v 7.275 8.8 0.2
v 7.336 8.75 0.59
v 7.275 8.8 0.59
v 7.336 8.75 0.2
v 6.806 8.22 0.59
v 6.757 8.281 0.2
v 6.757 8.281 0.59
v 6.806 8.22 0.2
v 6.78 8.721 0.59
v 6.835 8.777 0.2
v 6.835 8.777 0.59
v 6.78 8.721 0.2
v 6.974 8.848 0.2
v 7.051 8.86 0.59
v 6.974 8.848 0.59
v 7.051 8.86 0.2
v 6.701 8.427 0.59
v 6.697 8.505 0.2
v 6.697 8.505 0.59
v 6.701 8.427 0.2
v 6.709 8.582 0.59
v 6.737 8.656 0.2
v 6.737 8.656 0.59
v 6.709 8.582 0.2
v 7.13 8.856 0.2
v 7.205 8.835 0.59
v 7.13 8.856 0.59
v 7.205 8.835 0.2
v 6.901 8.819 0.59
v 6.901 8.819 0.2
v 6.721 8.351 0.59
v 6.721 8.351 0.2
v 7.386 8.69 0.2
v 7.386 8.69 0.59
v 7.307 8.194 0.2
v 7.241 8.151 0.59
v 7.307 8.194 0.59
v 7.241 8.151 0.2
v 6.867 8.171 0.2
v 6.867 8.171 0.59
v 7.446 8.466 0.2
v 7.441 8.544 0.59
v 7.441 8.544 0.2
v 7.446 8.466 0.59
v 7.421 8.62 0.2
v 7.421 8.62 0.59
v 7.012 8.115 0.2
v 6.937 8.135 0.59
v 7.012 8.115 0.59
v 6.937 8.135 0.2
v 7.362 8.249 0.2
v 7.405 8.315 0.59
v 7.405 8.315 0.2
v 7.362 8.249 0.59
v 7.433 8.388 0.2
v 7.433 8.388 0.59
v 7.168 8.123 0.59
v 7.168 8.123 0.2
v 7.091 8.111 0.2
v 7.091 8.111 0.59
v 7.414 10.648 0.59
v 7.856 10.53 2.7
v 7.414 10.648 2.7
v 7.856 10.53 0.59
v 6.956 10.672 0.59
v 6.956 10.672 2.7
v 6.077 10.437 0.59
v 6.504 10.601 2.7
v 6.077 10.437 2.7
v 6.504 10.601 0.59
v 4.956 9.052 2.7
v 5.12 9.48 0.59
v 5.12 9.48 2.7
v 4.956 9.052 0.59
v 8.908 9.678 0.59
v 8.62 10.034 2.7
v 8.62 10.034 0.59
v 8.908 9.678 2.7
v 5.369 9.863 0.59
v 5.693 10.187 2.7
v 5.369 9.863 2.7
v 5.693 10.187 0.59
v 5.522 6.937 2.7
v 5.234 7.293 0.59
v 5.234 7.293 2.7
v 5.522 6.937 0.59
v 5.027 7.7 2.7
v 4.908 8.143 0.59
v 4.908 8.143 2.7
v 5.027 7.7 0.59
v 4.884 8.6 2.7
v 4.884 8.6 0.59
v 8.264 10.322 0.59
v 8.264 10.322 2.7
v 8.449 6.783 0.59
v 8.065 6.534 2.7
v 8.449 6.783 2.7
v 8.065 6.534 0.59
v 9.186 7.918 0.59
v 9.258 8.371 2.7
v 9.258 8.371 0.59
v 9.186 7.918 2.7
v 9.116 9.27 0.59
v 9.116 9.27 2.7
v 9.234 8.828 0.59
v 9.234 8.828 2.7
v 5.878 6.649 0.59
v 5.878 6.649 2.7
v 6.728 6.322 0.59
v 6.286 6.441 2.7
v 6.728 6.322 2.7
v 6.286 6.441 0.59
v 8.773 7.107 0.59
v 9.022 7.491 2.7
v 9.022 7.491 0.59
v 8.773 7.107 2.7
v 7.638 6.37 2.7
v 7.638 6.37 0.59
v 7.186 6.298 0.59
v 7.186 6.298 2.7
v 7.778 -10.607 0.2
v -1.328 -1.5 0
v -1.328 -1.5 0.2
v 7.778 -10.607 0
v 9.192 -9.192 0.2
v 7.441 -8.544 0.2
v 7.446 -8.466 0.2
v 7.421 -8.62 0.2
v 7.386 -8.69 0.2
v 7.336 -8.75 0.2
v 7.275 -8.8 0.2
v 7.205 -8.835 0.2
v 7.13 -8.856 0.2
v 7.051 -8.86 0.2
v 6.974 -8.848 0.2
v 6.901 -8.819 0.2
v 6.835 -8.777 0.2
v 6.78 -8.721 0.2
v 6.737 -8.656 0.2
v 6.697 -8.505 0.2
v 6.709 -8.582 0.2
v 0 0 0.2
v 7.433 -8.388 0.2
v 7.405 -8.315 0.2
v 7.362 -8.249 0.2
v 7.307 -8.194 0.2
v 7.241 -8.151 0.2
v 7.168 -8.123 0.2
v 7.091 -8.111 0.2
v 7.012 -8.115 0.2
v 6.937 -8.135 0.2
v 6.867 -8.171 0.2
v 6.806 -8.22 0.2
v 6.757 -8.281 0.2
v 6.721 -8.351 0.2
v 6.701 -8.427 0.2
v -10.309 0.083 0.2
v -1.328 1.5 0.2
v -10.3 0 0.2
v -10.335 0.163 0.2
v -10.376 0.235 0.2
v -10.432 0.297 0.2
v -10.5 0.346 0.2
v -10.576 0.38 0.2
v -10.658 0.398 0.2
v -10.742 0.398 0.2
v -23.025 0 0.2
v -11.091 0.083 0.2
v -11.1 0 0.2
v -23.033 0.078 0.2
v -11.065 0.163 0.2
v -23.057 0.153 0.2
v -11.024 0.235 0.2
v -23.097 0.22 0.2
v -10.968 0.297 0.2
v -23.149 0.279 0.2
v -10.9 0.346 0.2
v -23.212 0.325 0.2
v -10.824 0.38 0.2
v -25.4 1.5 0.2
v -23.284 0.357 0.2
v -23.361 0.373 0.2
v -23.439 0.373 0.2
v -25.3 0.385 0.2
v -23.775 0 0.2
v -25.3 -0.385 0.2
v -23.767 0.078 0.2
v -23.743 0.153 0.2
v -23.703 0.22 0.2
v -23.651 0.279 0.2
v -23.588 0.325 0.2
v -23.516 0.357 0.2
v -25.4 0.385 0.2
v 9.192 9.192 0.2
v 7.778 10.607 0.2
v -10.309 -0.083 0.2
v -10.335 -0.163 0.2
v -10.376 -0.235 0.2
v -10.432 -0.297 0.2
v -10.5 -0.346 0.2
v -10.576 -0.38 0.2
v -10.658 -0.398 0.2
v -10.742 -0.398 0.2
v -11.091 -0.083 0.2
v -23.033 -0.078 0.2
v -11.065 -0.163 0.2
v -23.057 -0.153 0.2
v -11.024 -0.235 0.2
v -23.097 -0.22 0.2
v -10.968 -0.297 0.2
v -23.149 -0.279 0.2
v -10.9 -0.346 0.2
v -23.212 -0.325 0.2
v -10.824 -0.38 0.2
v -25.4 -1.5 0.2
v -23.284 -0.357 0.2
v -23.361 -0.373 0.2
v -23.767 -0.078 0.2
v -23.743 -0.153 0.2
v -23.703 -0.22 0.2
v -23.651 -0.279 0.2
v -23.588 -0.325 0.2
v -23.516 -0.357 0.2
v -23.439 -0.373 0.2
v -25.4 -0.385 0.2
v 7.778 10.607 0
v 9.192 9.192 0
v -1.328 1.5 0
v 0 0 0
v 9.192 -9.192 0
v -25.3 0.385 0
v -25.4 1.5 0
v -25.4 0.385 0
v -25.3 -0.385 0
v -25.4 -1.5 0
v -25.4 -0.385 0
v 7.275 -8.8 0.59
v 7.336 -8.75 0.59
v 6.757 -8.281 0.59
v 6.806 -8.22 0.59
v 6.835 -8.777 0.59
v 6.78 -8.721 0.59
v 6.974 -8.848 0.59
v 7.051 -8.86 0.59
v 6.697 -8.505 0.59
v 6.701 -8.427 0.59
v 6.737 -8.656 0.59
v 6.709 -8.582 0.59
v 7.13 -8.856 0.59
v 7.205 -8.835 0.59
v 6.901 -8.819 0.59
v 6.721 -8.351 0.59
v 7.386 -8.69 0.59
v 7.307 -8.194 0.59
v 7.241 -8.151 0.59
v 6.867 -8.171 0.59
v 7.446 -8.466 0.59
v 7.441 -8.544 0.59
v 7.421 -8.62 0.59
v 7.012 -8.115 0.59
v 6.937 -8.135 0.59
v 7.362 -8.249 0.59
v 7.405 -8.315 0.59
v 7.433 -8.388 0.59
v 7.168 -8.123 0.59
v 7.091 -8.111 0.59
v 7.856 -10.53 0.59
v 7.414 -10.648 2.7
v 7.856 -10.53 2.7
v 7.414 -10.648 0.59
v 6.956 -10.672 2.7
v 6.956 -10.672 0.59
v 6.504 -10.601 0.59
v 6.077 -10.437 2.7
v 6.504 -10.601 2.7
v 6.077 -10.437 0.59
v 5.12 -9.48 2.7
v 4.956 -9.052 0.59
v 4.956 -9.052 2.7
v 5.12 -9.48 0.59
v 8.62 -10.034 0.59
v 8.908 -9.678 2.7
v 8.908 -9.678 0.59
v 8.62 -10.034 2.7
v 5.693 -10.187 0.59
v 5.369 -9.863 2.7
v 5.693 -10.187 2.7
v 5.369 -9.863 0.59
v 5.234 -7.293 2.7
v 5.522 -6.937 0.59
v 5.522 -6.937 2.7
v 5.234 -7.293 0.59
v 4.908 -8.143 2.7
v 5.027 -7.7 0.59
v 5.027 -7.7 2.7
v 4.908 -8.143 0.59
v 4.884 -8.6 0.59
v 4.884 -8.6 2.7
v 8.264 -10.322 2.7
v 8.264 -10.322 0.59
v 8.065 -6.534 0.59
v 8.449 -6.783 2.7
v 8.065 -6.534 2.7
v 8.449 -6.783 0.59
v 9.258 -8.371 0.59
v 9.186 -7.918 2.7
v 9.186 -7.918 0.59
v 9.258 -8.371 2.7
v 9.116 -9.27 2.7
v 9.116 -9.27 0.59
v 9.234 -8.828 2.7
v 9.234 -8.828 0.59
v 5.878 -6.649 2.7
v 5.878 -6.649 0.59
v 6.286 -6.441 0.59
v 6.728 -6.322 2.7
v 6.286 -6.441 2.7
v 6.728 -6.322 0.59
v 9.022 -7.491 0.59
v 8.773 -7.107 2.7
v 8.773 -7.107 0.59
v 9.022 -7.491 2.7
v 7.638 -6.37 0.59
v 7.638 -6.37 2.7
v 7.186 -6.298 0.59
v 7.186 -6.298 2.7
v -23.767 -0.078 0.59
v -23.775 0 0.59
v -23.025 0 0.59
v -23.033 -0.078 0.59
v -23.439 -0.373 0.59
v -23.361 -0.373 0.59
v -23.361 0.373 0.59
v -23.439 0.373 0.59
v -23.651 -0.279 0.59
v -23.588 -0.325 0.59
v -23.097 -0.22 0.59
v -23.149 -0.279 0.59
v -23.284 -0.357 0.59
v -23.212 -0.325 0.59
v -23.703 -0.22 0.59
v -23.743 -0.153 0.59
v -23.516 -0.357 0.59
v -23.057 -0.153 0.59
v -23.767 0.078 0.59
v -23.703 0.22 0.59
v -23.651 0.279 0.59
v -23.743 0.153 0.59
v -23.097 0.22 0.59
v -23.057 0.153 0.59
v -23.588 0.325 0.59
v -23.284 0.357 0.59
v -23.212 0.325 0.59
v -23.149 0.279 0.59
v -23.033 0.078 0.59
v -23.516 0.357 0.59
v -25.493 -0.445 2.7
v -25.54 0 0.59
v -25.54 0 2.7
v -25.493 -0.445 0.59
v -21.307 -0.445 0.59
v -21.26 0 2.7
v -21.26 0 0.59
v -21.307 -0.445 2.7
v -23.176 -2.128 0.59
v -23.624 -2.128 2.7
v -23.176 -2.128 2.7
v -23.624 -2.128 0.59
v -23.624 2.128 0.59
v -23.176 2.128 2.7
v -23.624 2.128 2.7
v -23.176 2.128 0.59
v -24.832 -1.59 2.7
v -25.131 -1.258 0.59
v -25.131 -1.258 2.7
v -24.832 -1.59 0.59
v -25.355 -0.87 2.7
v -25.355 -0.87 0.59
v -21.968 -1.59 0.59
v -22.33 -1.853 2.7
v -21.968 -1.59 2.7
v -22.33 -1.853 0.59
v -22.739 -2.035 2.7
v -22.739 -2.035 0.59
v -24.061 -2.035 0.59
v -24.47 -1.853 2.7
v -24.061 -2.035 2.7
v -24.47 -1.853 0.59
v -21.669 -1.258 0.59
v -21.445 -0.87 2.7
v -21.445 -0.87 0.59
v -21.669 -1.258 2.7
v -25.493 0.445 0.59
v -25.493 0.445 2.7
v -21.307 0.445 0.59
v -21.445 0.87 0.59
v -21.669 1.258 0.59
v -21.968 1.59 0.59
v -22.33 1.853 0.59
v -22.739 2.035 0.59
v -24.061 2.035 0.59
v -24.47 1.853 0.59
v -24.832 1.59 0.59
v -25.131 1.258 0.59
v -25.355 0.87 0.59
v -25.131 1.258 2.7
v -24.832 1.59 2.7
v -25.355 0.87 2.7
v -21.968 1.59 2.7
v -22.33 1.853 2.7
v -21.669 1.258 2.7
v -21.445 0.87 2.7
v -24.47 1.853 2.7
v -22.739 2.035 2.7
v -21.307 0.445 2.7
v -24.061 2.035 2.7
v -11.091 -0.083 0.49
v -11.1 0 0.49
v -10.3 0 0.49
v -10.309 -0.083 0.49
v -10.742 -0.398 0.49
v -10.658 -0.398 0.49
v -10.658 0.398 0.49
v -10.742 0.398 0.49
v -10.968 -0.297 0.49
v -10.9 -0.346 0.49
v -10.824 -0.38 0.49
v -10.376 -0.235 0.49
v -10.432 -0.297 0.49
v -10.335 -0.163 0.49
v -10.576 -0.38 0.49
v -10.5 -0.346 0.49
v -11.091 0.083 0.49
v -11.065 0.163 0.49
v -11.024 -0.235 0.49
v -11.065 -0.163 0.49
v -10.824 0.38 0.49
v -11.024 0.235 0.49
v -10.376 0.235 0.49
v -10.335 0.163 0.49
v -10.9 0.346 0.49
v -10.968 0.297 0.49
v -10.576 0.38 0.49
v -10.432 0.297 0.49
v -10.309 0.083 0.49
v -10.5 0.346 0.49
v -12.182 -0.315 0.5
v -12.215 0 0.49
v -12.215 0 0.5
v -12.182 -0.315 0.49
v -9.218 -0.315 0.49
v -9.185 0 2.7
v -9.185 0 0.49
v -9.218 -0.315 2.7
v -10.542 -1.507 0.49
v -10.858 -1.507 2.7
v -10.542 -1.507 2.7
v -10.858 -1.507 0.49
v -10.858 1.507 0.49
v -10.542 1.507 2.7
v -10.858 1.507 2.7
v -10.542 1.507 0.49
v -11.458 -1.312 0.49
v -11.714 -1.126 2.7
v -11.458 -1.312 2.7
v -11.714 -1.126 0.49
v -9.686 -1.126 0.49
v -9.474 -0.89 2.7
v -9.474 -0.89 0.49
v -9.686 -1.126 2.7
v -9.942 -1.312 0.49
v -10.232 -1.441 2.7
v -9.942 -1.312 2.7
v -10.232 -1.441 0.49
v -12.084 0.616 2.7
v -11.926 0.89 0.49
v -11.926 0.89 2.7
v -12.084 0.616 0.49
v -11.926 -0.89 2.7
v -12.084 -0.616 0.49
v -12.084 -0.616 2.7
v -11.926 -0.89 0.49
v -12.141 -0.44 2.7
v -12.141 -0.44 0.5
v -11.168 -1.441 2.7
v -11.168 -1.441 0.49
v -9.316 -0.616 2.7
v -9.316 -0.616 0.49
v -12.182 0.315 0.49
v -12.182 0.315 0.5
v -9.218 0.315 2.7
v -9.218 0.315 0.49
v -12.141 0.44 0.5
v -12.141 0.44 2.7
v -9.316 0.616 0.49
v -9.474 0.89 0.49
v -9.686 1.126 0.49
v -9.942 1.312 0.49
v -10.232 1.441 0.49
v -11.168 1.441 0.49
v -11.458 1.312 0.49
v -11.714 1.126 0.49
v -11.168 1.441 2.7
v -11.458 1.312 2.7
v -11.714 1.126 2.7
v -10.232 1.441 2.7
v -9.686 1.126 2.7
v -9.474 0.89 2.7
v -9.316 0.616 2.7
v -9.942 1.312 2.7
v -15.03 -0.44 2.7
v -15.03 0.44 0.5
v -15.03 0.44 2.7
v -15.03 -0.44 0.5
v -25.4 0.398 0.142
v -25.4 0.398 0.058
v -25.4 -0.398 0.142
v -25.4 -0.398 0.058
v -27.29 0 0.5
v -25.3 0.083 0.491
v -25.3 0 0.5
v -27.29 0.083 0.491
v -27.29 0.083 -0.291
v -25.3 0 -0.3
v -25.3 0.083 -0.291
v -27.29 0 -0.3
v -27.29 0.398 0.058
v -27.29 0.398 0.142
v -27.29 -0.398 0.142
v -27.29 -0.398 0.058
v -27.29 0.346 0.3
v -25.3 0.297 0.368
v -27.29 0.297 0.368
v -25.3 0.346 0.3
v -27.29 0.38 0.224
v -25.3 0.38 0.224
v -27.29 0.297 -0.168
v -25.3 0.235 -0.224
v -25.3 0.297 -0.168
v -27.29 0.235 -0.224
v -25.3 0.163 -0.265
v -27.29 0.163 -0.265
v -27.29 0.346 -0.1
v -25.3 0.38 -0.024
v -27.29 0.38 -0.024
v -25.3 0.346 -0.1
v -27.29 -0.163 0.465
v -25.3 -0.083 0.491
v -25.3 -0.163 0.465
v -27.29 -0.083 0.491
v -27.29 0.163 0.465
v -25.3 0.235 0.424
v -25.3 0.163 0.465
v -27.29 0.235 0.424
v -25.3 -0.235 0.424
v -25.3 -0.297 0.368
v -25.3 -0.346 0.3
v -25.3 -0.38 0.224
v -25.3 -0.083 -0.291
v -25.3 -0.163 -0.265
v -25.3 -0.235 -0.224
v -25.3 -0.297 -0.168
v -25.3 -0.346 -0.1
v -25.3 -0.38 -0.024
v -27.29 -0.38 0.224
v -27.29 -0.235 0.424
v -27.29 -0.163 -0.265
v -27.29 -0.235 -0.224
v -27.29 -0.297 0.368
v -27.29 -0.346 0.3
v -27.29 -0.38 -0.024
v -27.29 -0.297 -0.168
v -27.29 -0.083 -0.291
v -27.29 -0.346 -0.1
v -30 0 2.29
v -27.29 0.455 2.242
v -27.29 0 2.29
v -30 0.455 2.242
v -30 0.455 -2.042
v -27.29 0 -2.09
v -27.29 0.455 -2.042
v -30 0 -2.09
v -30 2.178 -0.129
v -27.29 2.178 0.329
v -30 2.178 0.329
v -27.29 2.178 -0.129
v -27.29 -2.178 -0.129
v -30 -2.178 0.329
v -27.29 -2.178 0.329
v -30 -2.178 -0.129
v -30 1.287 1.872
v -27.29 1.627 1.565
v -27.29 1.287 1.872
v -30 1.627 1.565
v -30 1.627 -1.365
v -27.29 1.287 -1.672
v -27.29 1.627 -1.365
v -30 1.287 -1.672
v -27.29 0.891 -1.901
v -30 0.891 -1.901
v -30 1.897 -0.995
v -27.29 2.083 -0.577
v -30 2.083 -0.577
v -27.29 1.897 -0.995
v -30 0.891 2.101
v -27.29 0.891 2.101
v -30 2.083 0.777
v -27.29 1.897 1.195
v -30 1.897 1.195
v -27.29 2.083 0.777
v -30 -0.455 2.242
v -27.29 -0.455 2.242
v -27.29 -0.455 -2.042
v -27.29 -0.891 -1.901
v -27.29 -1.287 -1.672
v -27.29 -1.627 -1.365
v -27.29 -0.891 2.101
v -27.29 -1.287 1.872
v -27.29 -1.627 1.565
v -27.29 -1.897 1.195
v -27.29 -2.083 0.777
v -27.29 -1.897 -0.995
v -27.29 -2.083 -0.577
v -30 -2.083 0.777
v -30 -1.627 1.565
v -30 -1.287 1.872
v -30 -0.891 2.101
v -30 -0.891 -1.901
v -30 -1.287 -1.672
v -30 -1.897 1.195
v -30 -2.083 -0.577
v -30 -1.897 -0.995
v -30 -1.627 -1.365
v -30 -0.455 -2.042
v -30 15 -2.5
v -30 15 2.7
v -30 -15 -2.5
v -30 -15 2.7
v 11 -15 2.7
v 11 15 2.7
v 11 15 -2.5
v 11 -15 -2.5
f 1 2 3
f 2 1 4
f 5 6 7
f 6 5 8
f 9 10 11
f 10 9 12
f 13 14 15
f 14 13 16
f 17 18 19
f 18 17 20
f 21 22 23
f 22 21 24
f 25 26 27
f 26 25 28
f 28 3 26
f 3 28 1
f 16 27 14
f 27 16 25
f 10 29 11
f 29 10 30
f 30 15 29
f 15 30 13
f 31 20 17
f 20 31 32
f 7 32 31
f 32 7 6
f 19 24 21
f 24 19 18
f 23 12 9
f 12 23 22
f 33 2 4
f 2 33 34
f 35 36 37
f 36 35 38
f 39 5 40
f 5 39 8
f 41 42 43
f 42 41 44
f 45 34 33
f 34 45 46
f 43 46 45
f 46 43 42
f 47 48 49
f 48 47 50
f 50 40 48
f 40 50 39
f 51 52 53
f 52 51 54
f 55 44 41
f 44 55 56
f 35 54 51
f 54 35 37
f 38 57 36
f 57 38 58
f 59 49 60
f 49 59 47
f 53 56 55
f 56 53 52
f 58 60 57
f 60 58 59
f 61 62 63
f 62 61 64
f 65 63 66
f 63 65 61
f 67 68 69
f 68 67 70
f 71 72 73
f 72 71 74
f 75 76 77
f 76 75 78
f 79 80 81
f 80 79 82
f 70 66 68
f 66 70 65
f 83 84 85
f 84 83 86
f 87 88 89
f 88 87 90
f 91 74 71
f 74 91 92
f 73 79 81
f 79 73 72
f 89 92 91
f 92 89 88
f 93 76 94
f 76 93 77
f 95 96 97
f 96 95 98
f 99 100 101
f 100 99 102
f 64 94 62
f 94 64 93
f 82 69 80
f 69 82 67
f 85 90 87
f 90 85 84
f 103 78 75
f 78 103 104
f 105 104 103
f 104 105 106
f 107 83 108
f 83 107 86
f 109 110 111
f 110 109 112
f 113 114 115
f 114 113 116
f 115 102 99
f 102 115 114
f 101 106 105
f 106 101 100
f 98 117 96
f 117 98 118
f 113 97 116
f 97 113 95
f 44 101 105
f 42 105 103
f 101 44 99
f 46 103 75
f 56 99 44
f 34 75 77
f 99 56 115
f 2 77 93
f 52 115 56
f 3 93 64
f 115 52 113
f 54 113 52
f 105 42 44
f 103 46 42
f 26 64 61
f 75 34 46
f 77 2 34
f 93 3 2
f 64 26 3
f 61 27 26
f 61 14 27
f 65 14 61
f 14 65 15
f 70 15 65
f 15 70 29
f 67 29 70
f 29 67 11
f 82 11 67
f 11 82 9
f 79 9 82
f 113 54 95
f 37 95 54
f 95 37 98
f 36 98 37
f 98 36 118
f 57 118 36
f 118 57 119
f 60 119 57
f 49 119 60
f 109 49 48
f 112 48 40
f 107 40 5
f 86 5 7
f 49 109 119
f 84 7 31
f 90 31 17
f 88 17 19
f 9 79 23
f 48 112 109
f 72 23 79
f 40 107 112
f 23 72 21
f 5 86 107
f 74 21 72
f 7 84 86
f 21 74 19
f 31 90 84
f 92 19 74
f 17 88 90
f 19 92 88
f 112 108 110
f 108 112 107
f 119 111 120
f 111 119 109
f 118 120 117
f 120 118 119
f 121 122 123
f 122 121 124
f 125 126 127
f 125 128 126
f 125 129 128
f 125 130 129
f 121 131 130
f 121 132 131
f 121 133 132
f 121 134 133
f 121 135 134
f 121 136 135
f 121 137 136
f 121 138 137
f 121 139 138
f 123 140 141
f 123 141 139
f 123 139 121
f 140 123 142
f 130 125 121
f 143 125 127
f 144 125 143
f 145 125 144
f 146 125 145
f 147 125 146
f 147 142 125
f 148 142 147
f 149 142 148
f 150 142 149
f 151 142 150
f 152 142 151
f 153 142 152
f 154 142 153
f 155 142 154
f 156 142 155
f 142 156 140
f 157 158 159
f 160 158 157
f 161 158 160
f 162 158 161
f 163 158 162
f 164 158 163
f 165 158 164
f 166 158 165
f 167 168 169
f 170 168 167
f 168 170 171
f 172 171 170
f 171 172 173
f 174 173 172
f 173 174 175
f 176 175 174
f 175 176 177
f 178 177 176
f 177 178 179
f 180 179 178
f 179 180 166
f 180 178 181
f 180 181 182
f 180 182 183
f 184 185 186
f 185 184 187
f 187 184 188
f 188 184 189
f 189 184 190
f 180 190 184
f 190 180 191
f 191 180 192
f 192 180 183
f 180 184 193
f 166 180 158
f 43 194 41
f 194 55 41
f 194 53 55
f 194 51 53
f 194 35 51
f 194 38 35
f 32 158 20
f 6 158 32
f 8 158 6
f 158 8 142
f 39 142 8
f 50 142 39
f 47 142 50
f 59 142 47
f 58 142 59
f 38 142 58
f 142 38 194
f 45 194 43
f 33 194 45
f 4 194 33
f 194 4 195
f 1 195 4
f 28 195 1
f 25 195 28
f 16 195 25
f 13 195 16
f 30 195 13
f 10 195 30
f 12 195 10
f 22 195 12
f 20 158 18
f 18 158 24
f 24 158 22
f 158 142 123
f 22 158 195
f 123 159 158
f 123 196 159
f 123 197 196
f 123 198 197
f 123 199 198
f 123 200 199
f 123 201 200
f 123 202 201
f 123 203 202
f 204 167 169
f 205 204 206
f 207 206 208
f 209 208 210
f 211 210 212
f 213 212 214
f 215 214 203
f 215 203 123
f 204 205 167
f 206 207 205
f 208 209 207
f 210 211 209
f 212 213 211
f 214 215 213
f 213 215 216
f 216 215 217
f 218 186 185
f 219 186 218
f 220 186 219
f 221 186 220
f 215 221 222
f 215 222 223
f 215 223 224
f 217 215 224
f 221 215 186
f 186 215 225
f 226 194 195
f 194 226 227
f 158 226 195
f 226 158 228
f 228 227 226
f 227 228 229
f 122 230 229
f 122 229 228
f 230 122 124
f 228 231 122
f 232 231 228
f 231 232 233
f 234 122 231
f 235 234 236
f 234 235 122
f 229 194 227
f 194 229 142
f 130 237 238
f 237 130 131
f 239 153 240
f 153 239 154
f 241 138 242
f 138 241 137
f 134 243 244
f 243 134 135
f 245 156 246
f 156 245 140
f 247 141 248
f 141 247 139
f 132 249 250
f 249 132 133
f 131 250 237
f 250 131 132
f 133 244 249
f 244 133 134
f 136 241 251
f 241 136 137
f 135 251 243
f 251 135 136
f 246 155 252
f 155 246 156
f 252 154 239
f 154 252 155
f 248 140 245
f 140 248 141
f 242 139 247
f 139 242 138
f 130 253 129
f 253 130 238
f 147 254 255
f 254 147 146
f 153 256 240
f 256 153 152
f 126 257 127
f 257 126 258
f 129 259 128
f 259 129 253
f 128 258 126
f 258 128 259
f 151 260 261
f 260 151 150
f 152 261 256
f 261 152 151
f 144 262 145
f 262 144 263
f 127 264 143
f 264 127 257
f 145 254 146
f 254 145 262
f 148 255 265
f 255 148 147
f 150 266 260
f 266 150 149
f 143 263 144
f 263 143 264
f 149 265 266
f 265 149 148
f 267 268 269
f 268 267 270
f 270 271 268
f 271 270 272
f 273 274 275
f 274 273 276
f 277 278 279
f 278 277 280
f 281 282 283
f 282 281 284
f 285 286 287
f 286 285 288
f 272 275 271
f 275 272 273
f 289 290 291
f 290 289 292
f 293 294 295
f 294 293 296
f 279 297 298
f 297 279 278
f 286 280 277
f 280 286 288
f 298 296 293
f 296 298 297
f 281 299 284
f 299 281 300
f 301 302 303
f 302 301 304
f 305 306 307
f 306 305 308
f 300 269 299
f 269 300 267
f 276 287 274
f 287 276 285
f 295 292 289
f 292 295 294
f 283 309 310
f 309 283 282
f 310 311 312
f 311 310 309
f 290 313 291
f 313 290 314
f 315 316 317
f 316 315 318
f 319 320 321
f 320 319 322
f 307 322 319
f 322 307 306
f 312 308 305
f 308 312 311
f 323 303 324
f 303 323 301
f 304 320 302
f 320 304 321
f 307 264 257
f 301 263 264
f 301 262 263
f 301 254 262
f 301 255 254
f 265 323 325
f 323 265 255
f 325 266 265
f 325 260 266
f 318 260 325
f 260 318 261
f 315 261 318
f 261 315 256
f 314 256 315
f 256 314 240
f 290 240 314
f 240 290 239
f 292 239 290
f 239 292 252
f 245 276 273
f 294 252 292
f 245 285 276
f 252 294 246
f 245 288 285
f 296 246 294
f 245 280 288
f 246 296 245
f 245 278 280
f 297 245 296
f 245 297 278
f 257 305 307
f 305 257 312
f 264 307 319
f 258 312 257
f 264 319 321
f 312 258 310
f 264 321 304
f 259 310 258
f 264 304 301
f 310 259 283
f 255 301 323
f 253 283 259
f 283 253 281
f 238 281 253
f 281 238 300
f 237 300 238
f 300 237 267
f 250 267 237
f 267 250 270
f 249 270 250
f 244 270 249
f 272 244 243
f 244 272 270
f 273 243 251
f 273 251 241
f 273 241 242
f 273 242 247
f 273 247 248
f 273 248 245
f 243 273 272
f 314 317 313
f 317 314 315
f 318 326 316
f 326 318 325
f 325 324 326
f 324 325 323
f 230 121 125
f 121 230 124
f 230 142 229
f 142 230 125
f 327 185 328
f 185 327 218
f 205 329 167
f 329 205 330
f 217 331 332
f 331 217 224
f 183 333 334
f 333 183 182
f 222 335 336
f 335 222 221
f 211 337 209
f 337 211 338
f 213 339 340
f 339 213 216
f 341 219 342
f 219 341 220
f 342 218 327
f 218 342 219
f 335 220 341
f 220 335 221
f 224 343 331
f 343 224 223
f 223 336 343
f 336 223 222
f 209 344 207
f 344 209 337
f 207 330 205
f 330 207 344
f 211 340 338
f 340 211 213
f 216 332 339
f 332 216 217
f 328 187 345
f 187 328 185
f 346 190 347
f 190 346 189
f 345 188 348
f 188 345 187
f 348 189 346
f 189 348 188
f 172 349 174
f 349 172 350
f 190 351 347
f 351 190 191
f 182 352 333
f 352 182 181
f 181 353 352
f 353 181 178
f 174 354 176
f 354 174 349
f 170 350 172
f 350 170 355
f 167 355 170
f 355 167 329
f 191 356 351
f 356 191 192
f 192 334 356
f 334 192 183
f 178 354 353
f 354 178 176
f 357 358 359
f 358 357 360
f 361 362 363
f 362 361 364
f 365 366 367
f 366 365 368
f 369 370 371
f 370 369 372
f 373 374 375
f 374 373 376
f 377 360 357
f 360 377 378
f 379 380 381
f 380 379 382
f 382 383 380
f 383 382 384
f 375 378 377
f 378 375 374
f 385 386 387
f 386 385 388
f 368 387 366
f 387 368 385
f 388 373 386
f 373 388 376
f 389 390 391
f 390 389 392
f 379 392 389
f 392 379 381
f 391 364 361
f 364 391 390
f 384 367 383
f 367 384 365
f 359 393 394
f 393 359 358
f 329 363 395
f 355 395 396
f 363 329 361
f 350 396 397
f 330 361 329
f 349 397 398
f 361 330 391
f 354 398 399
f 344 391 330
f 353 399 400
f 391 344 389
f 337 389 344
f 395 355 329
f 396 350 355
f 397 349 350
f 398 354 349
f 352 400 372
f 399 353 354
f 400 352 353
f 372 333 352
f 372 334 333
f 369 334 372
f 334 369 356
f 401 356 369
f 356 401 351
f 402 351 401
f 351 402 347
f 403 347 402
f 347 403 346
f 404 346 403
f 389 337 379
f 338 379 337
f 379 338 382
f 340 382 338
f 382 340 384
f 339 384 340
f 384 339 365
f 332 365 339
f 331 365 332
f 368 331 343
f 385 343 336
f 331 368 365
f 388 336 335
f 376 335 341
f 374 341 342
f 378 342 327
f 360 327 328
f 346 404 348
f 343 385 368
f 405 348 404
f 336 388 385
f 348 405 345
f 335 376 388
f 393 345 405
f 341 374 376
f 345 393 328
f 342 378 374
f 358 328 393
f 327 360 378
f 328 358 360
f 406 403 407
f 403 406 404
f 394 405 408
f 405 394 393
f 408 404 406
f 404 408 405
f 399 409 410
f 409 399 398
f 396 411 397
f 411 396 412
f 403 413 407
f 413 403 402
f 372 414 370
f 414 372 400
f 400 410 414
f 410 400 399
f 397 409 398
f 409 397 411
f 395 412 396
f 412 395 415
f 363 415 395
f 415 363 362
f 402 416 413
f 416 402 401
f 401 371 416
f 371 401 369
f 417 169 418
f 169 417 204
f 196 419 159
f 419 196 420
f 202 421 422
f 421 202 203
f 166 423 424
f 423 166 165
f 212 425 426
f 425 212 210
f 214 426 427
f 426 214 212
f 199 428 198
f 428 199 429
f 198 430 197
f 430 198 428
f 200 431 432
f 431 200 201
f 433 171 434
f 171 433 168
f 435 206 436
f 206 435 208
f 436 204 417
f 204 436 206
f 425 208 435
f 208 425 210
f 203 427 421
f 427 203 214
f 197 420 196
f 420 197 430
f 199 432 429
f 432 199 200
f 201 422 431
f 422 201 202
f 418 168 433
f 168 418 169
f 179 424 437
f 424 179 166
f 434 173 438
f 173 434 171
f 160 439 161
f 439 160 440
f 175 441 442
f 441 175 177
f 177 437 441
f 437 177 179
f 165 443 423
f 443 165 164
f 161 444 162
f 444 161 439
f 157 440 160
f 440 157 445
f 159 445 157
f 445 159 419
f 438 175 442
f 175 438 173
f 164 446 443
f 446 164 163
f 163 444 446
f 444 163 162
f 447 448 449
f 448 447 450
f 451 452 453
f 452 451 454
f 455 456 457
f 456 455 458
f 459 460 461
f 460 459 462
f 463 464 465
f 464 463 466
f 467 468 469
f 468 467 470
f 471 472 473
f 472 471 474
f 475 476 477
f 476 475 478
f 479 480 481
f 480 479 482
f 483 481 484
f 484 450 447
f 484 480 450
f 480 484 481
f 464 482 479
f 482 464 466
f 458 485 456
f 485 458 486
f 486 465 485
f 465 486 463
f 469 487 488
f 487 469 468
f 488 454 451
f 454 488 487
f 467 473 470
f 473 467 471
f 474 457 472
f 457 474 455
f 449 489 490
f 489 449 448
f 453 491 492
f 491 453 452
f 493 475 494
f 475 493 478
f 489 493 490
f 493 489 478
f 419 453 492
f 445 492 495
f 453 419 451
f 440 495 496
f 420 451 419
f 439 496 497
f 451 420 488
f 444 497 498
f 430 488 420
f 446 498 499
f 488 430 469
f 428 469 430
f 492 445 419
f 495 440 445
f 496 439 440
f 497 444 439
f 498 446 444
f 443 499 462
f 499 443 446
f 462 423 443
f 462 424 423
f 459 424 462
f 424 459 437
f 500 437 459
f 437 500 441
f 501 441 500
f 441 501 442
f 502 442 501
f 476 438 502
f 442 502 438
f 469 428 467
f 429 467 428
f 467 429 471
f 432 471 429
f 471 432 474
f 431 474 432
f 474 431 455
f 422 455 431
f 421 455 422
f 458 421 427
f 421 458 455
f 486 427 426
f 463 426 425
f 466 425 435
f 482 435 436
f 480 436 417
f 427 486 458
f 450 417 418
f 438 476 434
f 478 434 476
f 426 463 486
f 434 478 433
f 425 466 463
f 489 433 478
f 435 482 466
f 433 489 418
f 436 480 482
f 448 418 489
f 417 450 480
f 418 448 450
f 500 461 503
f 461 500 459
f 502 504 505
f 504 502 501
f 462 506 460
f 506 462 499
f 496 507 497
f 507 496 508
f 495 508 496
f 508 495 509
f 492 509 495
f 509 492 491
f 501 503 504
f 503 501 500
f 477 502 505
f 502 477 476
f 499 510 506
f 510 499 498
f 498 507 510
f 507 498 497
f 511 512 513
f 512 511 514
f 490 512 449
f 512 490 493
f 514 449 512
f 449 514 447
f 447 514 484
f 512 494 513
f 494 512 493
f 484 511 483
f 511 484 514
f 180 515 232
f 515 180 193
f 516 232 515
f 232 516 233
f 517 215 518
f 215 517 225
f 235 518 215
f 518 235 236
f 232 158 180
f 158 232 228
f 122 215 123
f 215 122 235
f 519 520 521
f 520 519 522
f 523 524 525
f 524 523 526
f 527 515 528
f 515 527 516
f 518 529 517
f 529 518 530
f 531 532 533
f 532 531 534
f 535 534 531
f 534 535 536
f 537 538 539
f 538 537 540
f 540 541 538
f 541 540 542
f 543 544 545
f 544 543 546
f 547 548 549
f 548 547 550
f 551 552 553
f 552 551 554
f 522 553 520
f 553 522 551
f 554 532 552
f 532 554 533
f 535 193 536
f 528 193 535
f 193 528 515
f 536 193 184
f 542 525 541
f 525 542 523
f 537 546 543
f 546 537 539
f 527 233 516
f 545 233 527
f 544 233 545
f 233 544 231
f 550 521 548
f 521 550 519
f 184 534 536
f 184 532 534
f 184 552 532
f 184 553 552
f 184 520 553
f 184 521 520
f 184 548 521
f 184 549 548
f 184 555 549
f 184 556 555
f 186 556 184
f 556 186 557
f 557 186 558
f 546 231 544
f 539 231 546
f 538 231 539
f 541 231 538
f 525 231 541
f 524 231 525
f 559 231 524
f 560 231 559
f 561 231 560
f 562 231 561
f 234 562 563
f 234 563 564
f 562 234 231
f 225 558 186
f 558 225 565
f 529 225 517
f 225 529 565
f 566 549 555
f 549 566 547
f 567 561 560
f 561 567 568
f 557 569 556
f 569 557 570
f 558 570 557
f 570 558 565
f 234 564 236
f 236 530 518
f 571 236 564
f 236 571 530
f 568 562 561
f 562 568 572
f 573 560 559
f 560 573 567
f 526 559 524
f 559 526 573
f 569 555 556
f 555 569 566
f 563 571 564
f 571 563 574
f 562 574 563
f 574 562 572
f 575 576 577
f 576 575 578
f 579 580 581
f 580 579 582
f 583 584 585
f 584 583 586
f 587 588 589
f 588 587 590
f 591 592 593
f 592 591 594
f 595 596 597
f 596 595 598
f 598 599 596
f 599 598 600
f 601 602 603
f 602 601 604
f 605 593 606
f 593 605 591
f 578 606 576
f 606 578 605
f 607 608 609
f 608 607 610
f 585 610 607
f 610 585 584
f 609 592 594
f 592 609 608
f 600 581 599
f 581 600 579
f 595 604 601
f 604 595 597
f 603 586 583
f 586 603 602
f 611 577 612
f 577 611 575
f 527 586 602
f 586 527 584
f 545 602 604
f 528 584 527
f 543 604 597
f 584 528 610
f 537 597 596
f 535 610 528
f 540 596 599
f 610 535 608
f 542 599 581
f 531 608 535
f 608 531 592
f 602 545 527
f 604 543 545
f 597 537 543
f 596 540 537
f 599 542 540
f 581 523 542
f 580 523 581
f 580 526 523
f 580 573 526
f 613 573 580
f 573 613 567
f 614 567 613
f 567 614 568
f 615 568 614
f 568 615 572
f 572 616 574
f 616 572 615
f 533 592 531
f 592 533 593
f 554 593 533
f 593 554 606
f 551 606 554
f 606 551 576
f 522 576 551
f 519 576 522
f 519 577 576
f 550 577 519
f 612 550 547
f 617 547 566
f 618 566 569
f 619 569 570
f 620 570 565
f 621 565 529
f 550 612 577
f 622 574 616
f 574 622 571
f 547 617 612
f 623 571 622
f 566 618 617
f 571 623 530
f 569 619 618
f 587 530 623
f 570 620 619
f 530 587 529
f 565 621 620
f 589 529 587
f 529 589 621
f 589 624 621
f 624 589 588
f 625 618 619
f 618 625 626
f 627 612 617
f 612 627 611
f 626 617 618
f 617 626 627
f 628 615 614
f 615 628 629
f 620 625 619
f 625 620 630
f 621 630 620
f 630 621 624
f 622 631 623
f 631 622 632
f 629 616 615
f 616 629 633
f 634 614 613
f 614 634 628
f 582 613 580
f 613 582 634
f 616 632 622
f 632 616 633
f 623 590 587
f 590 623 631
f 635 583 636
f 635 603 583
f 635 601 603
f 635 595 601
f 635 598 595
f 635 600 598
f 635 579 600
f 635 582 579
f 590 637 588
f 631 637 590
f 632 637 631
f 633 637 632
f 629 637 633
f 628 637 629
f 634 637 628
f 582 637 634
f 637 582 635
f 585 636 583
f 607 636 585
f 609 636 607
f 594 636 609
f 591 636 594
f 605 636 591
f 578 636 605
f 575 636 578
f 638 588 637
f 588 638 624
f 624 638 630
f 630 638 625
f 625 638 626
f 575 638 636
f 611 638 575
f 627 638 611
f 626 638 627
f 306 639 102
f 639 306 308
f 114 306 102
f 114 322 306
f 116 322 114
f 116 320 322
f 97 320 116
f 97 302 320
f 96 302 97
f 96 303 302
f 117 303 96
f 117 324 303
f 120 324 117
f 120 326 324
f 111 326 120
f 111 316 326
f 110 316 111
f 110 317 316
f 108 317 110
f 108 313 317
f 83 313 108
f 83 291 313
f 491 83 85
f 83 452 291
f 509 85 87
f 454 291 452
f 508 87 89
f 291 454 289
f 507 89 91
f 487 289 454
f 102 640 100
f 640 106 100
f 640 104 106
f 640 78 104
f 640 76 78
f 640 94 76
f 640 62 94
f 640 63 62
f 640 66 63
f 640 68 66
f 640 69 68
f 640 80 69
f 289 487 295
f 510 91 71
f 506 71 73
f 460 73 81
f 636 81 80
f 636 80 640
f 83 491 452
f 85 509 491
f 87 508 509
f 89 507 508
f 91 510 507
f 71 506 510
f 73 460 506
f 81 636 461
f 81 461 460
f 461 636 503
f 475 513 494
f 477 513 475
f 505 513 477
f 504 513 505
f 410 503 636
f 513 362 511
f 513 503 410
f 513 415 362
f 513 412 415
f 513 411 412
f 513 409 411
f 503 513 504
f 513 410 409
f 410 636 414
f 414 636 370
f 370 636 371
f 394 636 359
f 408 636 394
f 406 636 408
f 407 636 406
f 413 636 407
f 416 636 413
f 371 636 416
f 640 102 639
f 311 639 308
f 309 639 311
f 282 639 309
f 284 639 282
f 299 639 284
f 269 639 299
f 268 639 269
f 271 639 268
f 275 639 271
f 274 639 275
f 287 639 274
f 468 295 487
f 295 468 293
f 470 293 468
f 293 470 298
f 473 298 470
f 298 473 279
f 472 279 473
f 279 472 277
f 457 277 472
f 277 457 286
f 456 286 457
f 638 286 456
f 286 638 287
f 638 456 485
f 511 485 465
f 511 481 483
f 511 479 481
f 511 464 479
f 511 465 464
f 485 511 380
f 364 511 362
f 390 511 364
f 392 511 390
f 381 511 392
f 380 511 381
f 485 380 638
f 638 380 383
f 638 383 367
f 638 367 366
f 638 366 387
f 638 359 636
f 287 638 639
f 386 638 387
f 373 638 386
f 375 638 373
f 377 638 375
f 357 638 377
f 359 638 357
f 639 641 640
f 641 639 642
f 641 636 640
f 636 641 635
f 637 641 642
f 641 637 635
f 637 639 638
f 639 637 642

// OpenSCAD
///////////////////////////////////////////
// Y CHANNEL microfluidic chamber        //
// to be used for electrode calibration  //
// created by AM Chagas 20191120         //
// CC BY SA v4.0                         //
///////////////////////////////////////////

// fn defines how smooth circles/cylinders will be
$fn=30;

// tol is a parameter to compensate for differences in 
// different 3d printers - higher values make holes bigger
// and looser fits
tol=0.1;

test=0;

//channels dimensions
channelx = 25.4;
channely = 3;
channelz = 0.2;

//dimensions of the "Y" short arms
shortarmx = 15;
shortarmy = channely-1;



// fluid line dimensions
flined = 5;

//electrode holder dimensions
polyamided = 0.6;
polyamideh  = 0.4;//channelz/2;
plasticholderd = 2.83;
plasticholderh = 5;

slity = 0.78+tol;
slitx = 4.23+tol;
// luer fitting
luerh = 3;
luerd = 4.18;//2.3;

//////////////////////////////////////////////////

/////////// modules /////////////////////////////



// module to create a screw like structure
module screwbit(diam1,diam2,height1,height2){
    union(){
    cylinder(d=diam1,h=height1);
    translate([0,0,height1-0.01]){
        cylinder(d=diam2,h=height2);
    }//end translate
}//end union
    }//end module screwbit  
///

module micromanipulatorbase(){
screwbit(polyamided+2*tol,plasticholderd+2*tol,polyamideh,plasticholderh);
translate([0,-slity/2,polyamideh]){
    cube([slitx,slity,plasticholderh]);
    }//end translate
}//end module


// create a Y shape
module yshape(shortarmx=shortarmx,shortarmy=shortarmy,longarmx=channelx,longarmy=channely,z=channelz,holes=0){
    
    rotate([0,0,45]){
        translate([-shortarmy,0,0]){
            cube([shortarmx,shortarmy,z]);
            if (holes==1){
                translate([shortarmx-2,shortarmy/2,channelz/2]){
                    screwbit(channely/4,luerd+2*tol,0.5,luerh);
                }//end translate
            }//end if
        }//end translate
    }//end rotate

    mirror([0,1,0]){
        rotate([0,0,45]){
            translate([-shortarmy,0,0]){
                cube([shortarmx,shortarmy,z]);
                if (holes==1){
                    translate([shortarmx-2,shortarmy/2,channelz/2]){
                        screwbit(channely/4,luerd+2*tol,0.5,luerh);
                }//end translate
            }//end if
            }//end translate
        }//end rotate
    }//end mirror
    
    translate([0,longarmy/2,0]){
        rotate([0,0,180]){
            cube([longarmx,longarmy,z]);
            if (holes==1){
                translate([longarmx-2,longarmy/2,channelz/2]){
                    screwbit(channely/4,luerd+tol,0.5,luerh);
                }//end translate
                translate([longarmx/2-2,longarmy/2,channelz/2]){
                    micromanipulatorbase();
                }//end translate
            }//end if
        }//end rotate
    }//end translate
    
    //drain hole
    translate([-channelx+0.1,0,channelz/2]){
    rotate([0,-90,0]){
        screwbit(diam1=0.8,diam2=luerd+2*tol,height1=2,height2=3);
        }//end rotate
    }//end translate
        
        
    
 }//end module
/////
 
// a ring in Y shape (in case a rubber seal is needed)
module yshapedring(shortarmx,shortarmy,longarmx,longarmy,ringz,ringt){

    difference(){
       yshape(shortarmx,shortarmy,longarmx,longarmy,ringz,0);
        
        translate([-ringt,0,-1]){
            yshape(shortarmx-2*ringt,shortarmy-2*ringt,longarmx-2*ringt,longarmy-2*ringt,ringz+2,0);
        }//end translate
    }
 
 }//end module
 ////
 
 
 
/////////////////////////////////////////////////

difference(){
    translate([-30,-15,-2.5]){
        cube([41,30,channelz+5]);
        
    }//end translate    
    yshape(holes=1);
    if (test==1){
    translate([-30.5,-18.5,-4]){
            cube([30,15,10]);
            }
    translate([-30.5,4,-4]){
            cube([30,15,10]);
            }
    translate([-4,-20,-5]){
            cube([20,40,10]);
            }//endtranslate
        }//end if
        
    
}//end difference
